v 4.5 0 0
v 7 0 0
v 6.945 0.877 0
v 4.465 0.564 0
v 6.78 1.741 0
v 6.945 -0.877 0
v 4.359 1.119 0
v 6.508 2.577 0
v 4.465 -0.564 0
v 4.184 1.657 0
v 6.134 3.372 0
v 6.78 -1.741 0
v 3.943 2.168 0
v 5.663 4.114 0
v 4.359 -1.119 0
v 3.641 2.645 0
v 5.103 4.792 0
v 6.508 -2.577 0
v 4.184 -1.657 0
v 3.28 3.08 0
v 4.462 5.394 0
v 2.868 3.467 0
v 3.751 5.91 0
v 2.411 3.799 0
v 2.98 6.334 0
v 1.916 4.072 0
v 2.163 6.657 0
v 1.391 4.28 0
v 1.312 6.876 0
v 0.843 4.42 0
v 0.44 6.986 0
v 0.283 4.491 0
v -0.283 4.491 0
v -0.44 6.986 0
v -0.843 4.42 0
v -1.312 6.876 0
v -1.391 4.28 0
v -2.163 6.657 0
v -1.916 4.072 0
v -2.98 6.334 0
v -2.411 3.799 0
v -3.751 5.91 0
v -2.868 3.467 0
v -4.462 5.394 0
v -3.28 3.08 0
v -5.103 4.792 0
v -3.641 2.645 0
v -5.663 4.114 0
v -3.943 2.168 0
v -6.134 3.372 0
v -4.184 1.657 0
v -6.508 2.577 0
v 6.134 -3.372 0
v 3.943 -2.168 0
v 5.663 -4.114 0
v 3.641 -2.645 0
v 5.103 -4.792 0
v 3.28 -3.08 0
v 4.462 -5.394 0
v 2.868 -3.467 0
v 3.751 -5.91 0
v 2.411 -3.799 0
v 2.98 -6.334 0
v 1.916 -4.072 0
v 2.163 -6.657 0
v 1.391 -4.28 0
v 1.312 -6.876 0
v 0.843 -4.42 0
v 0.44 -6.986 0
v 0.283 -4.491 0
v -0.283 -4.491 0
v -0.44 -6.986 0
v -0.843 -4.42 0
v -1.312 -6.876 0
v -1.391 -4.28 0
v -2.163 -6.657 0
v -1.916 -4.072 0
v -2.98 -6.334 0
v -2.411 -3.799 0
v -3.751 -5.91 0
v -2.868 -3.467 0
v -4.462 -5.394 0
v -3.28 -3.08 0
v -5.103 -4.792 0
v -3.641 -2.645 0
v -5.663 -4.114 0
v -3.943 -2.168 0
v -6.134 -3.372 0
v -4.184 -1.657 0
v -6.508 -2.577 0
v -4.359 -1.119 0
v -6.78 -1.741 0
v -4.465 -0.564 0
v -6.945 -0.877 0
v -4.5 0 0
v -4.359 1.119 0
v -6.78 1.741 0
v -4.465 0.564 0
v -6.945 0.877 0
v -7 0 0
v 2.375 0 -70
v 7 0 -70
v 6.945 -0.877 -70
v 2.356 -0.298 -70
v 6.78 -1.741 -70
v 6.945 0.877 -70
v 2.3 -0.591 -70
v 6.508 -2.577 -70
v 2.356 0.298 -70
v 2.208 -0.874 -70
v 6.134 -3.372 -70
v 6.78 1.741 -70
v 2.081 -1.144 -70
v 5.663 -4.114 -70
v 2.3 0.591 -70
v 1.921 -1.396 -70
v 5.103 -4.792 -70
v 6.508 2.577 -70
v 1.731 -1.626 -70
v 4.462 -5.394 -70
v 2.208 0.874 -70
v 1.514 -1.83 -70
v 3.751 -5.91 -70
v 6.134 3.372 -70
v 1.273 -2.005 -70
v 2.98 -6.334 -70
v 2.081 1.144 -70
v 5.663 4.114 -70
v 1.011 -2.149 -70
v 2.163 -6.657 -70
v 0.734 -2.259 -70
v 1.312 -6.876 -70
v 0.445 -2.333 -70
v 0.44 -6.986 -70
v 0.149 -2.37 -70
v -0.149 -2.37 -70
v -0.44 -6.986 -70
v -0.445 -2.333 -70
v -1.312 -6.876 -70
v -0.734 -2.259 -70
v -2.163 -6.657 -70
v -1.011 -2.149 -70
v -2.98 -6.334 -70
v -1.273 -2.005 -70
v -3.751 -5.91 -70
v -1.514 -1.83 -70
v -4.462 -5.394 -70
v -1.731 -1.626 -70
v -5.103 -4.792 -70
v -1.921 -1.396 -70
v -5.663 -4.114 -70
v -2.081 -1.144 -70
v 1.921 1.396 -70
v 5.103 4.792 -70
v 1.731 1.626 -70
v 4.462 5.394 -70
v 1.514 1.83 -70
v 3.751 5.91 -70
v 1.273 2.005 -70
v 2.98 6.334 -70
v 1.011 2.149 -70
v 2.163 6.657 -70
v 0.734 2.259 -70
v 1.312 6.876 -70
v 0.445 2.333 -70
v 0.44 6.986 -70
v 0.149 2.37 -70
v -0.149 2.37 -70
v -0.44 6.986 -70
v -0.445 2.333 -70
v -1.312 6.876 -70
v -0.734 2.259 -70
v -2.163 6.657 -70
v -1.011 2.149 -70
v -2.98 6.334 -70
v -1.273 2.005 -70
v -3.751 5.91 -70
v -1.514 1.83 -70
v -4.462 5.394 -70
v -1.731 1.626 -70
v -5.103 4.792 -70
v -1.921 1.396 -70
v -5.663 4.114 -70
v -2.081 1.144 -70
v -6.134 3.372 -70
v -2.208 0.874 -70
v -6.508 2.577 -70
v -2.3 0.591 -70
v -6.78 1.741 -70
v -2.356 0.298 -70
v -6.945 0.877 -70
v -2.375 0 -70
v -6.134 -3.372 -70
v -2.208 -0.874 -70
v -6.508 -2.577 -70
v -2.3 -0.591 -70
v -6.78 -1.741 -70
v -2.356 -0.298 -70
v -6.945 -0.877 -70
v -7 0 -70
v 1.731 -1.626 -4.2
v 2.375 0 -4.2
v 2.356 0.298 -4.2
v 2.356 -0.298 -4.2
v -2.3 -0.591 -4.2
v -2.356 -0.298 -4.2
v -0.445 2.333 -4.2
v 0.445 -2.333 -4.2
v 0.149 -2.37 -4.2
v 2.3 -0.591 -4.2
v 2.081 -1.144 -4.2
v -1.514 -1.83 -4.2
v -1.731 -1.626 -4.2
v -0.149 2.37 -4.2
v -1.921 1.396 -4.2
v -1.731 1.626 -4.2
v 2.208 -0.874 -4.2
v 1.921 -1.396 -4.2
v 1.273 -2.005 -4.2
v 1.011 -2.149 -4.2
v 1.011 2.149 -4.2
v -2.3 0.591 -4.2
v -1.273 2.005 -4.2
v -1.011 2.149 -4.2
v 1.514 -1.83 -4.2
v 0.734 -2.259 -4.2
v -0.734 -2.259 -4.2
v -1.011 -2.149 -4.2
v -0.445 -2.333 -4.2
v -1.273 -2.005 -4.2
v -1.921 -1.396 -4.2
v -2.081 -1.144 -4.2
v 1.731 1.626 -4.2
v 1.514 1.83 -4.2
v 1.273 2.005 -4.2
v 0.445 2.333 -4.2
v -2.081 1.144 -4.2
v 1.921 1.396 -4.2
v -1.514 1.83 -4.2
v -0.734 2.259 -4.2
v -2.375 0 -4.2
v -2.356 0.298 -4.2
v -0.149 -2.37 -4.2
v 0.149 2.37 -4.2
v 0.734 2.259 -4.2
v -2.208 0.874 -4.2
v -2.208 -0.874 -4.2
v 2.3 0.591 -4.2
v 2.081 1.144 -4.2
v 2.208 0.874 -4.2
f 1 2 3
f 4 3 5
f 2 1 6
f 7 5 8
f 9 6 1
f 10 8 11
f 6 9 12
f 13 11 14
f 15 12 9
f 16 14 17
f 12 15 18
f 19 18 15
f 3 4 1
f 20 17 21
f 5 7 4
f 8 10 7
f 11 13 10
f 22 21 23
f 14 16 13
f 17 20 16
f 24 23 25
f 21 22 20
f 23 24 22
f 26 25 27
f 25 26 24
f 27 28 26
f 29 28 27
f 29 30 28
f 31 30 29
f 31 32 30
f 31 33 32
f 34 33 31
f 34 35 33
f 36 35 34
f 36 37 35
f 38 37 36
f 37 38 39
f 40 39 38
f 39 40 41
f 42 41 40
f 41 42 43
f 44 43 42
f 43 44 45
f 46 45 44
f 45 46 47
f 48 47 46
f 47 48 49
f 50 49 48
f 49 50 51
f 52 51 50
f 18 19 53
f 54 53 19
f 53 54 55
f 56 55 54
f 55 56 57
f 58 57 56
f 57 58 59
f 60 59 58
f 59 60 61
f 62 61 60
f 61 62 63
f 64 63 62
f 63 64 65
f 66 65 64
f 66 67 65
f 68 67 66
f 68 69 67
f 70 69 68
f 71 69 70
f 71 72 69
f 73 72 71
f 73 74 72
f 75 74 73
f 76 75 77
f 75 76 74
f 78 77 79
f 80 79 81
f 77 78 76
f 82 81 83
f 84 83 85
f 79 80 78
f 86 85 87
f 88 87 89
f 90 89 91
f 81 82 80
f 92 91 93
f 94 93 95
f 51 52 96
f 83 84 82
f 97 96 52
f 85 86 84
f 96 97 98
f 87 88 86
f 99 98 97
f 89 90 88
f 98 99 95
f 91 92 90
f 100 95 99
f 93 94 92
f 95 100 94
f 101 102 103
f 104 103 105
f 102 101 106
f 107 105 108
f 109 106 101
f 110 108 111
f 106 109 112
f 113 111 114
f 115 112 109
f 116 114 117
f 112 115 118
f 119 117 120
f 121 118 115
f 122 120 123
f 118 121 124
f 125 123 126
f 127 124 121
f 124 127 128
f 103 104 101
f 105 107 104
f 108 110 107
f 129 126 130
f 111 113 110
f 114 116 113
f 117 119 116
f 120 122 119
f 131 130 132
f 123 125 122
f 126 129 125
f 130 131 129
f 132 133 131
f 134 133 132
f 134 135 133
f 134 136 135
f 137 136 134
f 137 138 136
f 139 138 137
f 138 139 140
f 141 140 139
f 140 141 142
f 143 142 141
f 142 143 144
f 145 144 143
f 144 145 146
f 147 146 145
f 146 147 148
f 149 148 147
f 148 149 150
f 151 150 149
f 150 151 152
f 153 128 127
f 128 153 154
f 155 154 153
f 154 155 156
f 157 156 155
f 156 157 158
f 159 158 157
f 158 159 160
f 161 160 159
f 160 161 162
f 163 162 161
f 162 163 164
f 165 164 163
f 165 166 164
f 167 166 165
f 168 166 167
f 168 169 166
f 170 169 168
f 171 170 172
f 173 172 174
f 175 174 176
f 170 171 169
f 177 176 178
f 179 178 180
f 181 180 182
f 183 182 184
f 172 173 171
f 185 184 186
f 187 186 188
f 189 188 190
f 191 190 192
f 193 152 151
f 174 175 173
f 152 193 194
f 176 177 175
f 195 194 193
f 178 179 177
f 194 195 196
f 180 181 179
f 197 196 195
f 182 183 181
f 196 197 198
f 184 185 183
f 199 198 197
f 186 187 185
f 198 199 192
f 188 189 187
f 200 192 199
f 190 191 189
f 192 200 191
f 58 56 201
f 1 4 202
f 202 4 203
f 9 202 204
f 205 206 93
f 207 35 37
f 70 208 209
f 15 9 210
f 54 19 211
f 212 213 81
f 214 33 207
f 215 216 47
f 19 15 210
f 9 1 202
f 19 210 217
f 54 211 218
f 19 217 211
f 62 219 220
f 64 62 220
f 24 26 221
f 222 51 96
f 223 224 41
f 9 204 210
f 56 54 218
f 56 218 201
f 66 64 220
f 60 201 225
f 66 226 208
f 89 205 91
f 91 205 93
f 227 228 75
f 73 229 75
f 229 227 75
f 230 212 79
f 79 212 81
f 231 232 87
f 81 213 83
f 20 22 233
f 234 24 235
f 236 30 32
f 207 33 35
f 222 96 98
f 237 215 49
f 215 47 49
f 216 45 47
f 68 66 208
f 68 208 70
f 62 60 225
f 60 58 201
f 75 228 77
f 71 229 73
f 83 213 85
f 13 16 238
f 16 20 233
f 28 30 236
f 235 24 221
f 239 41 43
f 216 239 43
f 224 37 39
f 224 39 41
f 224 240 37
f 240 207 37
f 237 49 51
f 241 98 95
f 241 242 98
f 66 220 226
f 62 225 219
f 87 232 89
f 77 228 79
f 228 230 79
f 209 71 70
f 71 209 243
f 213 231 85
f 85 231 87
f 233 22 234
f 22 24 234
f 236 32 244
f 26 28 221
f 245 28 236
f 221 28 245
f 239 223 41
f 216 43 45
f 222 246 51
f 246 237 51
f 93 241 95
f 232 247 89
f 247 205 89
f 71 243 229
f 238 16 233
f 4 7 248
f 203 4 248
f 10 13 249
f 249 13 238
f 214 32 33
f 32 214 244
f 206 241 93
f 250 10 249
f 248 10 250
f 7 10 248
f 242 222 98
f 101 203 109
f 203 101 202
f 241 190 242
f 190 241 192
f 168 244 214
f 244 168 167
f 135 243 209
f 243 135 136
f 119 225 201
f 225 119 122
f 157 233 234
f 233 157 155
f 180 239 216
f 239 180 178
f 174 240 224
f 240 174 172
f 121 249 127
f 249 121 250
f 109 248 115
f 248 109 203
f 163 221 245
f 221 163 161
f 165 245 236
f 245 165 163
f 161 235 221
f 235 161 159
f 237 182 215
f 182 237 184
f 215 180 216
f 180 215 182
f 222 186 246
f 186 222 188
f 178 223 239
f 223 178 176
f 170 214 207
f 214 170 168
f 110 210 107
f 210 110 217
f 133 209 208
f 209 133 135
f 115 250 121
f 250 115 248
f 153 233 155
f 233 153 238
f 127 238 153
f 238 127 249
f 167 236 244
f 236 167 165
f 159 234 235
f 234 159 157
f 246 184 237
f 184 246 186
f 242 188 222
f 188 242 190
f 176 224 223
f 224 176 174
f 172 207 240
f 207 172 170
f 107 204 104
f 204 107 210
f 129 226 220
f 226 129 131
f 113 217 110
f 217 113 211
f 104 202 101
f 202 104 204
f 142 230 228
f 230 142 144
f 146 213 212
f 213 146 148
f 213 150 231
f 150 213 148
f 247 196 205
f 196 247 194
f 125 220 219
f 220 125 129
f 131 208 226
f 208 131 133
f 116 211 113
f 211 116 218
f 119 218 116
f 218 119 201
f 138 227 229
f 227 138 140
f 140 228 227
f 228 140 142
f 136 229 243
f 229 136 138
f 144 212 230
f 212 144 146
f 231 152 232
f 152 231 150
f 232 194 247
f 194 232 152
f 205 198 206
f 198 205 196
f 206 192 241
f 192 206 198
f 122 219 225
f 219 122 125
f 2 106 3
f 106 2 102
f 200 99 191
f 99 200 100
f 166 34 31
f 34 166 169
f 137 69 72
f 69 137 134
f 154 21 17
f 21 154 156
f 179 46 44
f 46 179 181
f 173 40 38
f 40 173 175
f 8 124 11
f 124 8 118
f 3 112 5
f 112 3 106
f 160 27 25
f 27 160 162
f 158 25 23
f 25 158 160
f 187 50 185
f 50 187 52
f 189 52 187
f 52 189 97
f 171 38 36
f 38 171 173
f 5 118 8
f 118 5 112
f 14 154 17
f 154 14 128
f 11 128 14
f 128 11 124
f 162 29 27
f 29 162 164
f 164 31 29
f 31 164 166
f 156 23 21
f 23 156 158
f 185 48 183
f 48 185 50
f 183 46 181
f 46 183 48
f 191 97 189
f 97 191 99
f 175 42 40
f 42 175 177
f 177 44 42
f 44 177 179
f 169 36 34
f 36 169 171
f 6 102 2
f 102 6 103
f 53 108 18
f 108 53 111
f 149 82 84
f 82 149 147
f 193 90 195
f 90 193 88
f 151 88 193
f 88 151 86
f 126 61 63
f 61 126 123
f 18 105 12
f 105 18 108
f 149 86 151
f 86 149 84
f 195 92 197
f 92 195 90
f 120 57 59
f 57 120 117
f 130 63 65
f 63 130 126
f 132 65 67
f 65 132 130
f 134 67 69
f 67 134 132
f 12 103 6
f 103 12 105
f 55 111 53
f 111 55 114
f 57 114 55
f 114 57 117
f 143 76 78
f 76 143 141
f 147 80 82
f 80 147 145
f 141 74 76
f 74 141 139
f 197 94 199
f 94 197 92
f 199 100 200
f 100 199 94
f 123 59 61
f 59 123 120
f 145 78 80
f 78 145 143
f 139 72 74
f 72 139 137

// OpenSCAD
$fn = 50;


difference() {
	union() {
		translate(v = [0, 0, -70.0000000000]) {
			cylinder(h = 70, r = 7.0000000000);
		}
		cylinder(h = 0, r = 17.0000000000);
	}
	union() {
		translate(v = [0, 0, 0]) {
			rotate(a = [0, 0, 0]) {
				difference() {
					union() {
						#translate(v = [0, 0, -70.0000000000]) {
							cylinder(h = 70, r = 2.2500000000);
						}
						#translate(v = [0, 0, -4.2000000000]) {
							cylinder(h = 4.2000000000, r = 7.0000000000, r1 = 2.3750000000, r2 = 4.5000000000);
						}
						#translate(v = [0, 0, -70.0000000000]) {
							cylinder(h = 70, r = 2.3750000000);
						}
						#translate(v = [0, 0, -70.0000000000]) {
							cylinder(h = 70, r = 2.2500000000);
						}
					}
					union();
				}
			}
		}
	}
}
